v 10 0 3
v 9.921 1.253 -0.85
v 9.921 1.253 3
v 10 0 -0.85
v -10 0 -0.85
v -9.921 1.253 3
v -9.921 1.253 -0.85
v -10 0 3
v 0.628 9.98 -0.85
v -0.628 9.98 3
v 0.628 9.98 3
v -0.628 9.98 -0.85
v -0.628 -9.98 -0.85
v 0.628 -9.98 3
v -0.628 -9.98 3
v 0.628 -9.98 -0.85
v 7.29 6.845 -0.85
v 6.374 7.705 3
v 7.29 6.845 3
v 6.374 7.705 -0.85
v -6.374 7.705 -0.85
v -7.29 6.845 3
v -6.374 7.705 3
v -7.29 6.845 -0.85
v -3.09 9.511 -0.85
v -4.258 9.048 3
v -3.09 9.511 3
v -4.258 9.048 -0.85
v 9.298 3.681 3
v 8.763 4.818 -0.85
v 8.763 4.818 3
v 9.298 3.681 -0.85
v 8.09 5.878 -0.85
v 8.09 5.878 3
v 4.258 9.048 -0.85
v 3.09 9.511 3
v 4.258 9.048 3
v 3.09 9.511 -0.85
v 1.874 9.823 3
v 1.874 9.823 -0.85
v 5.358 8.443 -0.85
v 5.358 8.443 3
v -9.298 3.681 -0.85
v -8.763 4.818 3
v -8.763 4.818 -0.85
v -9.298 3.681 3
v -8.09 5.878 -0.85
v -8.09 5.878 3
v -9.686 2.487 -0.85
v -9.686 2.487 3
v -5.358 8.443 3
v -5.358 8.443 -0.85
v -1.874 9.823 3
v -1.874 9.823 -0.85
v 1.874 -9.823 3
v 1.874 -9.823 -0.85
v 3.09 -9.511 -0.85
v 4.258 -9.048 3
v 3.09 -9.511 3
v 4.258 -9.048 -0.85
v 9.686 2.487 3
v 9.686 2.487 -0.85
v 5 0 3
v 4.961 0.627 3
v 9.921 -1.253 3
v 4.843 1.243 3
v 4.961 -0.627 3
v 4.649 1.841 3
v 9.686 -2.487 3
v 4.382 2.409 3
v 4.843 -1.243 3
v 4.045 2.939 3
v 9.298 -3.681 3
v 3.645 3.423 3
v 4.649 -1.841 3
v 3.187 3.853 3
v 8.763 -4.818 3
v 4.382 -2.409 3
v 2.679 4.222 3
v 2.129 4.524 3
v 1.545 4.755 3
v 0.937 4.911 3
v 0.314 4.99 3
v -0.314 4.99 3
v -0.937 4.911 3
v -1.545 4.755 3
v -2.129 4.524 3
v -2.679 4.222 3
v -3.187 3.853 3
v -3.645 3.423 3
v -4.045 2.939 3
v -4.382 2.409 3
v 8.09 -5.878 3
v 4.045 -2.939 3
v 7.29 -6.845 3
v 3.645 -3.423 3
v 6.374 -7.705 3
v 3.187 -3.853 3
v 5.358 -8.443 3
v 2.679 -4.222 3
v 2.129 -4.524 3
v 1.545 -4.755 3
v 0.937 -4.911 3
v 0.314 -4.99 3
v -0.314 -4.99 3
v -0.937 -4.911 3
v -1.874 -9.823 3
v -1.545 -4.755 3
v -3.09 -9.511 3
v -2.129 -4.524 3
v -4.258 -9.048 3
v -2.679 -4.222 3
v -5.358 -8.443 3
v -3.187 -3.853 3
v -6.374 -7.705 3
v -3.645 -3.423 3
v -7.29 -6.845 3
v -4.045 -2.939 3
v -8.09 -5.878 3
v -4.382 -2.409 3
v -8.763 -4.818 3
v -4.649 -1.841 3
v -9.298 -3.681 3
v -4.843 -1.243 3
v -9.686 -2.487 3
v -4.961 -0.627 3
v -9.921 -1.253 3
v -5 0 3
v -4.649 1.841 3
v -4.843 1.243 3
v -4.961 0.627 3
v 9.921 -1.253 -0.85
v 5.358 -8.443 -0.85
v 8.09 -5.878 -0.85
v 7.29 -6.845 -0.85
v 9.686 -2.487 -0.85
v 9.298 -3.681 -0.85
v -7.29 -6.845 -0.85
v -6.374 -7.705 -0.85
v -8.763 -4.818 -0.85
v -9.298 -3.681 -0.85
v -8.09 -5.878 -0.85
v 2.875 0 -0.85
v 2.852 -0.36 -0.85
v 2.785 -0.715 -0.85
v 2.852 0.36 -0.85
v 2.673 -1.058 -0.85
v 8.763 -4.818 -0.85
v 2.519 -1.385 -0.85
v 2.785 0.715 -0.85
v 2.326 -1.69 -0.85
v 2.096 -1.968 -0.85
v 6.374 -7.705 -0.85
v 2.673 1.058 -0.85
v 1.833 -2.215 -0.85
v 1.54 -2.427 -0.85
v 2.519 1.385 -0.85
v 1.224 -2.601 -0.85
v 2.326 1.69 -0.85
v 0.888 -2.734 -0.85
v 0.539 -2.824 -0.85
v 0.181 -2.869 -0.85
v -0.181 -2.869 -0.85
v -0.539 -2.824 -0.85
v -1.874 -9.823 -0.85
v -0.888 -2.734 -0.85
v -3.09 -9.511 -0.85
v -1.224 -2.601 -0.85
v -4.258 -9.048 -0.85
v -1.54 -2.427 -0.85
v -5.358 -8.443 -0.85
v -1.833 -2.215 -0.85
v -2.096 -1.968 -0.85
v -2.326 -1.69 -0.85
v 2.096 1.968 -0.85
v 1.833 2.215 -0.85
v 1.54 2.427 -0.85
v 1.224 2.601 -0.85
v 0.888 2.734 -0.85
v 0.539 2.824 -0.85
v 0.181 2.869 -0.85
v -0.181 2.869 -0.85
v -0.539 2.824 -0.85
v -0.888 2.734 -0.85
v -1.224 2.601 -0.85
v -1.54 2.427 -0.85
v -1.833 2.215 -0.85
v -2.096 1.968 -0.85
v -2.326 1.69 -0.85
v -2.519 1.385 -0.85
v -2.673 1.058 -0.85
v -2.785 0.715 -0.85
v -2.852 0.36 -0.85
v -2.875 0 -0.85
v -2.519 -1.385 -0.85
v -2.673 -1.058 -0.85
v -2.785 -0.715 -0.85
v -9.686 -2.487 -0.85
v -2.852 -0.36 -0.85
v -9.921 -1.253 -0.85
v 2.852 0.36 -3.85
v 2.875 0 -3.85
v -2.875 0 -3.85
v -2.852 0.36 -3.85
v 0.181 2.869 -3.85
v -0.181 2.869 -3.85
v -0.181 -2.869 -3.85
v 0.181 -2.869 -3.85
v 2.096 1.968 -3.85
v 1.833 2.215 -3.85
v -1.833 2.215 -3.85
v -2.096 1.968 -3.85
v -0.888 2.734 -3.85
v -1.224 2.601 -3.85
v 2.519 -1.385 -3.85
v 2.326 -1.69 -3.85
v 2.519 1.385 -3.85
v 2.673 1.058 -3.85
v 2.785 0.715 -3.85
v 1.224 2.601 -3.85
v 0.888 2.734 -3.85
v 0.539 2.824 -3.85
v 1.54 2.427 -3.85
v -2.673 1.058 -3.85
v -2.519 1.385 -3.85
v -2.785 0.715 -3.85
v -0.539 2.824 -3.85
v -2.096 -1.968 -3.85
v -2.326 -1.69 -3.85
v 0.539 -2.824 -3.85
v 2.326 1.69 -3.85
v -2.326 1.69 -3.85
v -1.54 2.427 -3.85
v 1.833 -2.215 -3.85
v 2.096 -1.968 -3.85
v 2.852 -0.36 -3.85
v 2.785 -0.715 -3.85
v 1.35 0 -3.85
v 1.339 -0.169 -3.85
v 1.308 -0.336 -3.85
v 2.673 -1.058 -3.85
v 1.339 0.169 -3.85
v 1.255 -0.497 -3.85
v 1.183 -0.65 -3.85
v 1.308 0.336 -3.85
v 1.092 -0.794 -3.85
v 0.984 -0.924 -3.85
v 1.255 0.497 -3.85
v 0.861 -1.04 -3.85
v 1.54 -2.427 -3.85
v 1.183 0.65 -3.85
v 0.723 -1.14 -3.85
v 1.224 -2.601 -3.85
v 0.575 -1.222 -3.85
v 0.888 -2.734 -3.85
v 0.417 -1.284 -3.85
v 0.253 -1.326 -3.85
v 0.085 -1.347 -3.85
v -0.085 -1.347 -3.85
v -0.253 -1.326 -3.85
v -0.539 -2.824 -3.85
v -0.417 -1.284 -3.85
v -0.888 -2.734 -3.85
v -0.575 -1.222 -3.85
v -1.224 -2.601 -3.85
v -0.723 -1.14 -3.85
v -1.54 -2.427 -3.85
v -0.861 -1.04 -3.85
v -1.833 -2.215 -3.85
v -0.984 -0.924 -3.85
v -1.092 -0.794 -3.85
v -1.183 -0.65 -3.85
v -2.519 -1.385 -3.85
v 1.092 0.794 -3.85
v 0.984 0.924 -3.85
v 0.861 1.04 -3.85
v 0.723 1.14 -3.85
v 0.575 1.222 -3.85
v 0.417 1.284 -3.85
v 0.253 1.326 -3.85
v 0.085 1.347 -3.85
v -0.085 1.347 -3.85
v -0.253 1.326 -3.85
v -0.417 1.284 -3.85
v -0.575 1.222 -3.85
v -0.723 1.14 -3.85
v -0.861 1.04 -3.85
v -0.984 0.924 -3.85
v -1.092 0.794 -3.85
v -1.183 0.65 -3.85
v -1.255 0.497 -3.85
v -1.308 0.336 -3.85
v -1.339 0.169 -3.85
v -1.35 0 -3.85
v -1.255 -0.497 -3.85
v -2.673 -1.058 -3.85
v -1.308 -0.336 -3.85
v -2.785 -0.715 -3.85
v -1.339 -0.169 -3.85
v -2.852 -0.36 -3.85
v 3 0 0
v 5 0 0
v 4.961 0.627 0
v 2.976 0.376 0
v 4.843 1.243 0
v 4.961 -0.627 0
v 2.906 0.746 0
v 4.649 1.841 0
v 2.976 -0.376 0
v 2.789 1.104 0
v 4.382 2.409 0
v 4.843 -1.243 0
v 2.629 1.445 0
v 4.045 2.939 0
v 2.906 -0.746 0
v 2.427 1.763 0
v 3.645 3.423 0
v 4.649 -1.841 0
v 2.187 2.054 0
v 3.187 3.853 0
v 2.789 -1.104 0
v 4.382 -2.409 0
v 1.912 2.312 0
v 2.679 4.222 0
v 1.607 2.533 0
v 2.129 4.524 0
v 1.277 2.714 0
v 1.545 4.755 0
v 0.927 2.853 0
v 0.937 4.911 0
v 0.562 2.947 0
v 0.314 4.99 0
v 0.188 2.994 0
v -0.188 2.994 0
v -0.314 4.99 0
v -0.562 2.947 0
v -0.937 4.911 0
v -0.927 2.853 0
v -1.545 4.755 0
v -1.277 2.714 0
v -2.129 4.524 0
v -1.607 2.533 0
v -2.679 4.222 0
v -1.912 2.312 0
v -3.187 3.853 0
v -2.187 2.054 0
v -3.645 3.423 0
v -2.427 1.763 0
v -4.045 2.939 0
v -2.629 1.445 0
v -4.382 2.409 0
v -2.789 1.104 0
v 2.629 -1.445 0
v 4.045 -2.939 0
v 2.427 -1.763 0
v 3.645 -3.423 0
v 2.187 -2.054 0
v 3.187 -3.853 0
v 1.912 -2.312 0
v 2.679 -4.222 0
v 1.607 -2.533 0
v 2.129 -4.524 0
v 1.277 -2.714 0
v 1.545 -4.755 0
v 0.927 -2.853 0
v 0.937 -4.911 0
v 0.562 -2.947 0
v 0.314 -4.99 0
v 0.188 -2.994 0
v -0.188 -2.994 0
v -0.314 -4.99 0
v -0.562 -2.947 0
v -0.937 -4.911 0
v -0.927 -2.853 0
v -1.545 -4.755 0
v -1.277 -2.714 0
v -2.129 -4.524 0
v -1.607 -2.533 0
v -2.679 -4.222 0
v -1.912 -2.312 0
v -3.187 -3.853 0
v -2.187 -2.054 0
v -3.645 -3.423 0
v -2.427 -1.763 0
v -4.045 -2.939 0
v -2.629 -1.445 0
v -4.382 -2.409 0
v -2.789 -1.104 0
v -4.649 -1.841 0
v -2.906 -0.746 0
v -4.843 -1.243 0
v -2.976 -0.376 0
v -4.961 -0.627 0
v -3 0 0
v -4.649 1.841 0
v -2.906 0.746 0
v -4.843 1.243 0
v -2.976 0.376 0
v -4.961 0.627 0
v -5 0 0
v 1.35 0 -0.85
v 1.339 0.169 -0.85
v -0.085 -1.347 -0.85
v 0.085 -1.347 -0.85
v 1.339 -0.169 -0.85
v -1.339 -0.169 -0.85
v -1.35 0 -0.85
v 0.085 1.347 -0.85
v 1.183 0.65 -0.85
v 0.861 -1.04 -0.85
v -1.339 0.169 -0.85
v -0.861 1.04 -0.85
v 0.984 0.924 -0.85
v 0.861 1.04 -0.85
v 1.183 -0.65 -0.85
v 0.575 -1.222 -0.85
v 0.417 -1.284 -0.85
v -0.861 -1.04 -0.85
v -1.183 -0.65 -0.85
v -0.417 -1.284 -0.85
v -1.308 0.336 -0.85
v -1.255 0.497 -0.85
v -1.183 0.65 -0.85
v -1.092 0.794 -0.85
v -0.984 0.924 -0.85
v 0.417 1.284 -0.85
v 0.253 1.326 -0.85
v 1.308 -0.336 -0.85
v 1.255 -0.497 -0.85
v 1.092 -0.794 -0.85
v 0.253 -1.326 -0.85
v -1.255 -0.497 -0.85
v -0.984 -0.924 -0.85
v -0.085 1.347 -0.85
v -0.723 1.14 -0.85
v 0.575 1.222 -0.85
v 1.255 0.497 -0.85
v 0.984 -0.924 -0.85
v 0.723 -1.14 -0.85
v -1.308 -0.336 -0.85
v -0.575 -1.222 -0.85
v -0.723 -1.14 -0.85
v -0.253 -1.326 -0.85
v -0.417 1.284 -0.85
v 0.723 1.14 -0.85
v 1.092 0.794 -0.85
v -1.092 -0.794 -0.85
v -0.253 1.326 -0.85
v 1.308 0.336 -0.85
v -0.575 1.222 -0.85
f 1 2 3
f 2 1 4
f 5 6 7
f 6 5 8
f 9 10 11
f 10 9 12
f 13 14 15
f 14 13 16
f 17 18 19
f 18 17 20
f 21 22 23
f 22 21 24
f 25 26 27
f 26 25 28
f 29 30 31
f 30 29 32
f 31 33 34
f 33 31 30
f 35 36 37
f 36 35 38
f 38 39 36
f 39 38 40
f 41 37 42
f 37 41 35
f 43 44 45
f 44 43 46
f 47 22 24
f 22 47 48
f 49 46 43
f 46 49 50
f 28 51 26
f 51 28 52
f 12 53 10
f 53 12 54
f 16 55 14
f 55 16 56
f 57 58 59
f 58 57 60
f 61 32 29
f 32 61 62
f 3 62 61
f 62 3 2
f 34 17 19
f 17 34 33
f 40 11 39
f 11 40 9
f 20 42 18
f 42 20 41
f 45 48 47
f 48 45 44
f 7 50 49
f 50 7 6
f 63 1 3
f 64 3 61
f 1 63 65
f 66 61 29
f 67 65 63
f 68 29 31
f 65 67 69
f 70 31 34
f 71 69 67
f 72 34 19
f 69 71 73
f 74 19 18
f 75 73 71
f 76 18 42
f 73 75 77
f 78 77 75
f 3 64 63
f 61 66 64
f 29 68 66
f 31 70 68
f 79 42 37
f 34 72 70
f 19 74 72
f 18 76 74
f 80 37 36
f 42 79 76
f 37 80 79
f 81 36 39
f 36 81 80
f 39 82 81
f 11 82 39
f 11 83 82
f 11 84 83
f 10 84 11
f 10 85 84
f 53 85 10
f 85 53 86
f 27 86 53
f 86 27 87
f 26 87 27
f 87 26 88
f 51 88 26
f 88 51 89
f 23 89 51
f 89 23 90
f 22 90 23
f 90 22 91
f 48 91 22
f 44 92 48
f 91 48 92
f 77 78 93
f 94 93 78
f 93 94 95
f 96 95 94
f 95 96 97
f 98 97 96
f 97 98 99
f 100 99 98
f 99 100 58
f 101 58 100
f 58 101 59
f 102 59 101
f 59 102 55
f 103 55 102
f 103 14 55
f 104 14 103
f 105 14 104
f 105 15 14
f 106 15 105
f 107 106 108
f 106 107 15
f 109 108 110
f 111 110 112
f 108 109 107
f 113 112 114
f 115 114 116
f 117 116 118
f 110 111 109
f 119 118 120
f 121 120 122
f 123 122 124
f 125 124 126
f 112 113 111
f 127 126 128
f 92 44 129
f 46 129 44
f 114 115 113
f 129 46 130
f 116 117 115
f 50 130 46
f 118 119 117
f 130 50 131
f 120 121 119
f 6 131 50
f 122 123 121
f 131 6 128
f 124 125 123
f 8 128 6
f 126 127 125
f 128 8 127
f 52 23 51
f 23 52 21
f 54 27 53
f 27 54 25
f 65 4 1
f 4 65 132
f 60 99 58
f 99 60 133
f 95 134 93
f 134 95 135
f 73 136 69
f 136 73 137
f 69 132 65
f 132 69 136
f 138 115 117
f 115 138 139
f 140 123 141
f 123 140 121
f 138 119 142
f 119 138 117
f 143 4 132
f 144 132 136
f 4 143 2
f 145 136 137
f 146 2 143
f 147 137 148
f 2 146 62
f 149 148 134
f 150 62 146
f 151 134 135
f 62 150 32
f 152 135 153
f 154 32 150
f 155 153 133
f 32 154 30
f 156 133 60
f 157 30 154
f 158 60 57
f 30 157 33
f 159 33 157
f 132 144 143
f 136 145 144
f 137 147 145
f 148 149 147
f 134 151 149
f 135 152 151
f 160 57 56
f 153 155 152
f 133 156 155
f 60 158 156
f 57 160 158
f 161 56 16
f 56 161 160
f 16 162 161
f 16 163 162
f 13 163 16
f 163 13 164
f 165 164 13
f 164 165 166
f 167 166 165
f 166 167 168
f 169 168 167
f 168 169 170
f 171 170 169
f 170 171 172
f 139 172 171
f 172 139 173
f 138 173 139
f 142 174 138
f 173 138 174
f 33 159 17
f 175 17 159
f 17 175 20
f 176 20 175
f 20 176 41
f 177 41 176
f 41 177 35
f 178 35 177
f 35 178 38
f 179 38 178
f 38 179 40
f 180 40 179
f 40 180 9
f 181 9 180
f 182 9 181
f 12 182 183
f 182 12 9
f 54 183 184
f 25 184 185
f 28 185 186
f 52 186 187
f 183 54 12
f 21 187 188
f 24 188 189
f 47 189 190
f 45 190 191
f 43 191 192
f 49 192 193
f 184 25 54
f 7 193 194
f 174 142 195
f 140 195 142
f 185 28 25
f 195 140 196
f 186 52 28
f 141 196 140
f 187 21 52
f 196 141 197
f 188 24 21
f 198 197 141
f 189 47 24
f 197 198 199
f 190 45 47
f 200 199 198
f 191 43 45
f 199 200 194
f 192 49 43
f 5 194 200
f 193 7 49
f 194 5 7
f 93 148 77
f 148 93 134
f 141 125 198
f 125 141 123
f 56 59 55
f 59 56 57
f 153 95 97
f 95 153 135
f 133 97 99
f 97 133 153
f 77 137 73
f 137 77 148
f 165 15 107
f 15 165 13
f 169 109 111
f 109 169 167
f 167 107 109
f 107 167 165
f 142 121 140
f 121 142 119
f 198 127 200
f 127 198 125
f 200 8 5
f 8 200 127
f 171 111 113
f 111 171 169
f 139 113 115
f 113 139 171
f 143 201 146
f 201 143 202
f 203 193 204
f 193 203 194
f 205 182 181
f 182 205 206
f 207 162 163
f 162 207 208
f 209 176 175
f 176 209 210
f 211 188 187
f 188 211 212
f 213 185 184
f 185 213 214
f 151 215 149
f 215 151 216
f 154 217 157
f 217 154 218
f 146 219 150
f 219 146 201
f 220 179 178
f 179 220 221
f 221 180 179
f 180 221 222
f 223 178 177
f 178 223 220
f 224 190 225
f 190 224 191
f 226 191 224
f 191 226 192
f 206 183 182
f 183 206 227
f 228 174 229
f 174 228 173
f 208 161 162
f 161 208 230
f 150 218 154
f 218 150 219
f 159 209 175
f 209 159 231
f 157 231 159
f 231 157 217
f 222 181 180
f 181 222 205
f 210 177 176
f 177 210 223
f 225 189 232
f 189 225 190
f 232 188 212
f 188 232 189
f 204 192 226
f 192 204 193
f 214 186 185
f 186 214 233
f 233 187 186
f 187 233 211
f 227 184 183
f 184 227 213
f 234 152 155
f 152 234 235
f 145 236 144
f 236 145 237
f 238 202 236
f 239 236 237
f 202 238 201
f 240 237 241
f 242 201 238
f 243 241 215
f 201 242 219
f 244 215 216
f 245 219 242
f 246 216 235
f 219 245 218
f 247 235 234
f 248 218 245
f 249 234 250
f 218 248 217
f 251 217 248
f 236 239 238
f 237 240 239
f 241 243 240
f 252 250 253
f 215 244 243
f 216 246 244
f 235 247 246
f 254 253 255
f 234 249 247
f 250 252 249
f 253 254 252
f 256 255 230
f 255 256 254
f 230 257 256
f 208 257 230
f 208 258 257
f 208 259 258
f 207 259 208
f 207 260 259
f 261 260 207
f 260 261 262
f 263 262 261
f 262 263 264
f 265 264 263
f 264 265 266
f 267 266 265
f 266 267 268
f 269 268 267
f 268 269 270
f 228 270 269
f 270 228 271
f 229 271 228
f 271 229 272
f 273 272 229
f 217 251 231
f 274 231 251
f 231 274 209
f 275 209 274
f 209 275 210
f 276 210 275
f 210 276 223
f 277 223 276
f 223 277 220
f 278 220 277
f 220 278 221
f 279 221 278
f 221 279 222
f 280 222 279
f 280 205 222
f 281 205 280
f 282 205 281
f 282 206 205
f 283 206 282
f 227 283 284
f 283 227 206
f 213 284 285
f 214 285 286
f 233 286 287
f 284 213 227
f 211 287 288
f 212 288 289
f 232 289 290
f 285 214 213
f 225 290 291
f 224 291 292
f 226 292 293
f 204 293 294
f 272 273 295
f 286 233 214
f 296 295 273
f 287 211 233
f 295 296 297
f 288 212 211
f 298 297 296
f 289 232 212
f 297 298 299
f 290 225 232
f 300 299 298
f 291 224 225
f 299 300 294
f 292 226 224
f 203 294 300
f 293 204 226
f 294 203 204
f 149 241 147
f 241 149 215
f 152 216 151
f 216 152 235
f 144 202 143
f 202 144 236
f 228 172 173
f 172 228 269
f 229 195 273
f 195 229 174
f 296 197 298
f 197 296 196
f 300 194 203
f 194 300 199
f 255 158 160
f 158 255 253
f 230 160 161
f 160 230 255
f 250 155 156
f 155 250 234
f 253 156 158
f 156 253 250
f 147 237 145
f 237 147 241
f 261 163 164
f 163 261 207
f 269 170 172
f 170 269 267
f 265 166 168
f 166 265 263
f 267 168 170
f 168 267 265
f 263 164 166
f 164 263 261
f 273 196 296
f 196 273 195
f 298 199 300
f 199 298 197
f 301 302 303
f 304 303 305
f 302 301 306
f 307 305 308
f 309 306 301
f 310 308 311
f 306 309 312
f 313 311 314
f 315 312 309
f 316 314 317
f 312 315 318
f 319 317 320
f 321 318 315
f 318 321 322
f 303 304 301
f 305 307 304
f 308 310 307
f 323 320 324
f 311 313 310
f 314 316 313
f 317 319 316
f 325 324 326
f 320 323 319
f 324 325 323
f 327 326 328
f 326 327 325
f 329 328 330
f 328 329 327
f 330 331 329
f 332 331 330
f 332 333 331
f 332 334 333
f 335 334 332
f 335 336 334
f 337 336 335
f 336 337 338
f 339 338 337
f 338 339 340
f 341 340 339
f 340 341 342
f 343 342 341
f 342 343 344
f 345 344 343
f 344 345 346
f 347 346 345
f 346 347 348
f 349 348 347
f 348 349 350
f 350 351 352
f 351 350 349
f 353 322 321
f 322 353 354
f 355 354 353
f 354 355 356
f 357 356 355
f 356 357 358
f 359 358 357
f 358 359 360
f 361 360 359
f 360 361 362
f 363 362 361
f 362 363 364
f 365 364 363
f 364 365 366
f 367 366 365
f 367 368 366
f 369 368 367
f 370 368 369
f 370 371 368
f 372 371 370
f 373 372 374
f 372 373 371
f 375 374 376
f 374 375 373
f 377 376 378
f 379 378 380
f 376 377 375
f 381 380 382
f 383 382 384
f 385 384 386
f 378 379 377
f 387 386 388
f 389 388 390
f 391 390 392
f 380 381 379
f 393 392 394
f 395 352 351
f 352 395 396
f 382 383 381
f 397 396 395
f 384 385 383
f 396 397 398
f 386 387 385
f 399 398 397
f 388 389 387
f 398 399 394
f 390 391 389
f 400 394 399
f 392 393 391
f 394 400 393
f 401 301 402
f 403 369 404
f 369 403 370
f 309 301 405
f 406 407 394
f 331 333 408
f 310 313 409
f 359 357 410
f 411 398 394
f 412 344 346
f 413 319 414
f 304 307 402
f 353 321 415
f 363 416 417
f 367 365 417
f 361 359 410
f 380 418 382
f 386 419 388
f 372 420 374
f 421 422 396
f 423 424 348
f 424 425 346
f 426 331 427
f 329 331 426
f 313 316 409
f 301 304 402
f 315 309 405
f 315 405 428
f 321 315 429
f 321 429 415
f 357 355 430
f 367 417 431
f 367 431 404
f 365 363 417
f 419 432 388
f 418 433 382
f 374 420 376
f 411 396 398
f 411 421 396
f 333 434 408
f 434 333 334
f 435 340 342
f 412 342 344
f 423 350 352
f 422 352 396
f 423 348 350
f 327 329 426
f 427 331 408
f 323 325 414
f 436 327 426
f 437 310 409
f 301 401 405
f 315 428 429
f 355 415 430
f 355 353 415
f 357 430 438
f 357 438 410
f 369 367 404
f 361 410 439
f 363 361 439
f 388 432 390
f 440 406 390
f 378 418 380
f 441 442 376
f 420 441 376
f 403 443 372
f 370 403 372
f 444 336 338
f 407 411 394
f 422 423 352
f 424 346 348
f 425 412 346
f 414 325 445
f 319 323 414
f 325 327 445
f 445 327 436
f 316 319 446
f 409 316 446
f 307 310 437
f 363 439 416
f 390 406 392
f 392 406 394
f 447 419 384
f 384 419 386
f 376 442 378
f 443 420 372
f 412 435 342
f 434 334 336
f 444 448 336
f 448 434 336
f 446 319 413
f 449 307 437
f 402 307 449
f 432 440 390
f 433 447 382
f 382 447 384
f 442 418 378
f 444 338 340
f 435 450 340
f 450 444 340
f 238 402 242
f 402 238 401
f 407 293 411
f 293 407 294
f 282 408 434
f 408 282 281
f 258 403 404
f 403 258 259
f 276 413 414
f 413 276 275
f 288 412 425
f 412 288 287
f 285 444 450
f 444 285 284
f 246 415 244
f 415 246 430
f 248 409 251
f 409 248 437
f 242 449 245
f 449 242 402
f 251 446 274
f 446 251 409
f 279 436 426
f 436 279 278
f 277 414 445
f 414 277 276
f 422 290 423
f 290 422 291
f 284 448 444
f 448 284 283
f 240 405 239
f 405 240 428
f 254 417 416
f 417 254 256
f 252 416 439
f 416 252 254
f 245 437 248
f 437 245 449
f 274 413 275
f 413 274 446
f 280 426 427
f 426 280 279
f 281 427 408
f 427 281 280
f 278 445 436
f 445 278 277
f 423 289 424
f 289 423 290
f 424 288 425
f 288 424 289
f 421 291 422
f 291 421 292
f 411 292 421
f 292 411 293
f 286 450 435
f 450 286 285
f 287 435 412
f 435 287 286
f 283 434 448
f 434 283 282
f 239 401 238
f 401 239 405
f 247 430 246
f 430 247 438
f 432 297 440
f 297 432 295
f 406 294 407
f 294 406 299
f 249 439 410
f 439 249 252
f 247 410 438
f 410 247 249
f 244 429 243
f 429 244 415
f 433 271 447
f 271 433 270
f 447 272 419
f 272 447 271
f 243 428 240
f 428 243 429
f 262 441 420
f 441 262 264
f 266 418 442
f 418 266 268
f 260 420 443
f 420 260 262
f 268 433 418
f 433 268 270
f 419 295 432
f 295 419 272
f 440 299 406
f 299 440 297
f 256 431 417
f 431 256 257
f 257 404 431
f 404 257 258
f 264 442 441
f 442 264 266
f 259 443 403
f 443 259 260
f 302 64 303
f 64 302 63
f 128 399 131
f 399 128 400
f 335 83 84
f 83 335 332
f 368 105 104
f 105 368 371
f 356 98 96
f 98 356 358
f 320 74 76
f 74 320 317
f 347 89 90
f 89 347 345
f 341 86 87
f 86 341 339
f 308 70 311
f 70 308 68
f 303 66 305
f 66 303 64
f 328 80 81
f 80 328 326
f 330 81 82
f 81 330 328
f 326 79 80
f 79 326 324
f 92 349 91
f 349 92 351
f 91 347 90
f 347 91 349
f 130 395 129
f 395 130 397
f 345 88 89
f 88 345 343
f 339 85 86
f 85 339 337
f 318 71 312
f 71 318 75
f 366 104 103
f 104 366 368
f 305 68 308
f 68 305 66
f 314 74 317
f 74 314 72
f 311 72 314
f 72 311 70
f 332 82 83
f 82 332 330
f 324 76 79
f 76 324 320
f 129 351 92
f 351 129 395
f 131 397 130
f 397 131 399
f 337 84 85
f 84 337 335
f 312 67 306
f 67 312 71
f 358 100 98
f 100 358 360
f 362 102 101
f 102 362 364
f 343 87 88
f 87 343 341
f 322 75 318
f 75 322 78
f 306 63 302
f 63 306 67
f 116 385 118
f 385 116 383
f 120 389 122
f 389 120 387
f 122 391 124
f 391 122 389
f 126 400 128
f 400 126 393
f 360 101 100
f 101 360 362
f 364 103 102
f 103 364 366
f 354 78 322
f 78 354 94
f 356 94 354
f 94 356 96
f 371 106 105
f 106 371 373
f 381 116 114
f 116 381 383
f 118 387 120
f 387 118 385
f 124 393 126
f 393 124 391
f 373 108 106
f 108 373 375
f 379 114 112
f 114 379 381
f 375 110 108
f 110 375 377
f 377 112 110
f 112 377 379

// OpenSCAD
$fn = 50;

difference() {
	union() {
		translate(v = [0, 0, -0.8500000000000001]) {
			cylinder(h = 3.85, r = 10.0);
		}
		#translate(v = [0, 0, -3.85]) {
			cylinder(h = 3.85, r = 2.875);
		}
	}
	union() {
		translate(v = [0, 0, 0]) {
			rotate(a = [0, 0, 0]) {
				difference() {
					union() {
						translate(v = [0, 0, -3.85]) {
							cylinder(h = 3.85, r = 1.0);
						}
						translate(v = [0, 0, -0.85]) {
							cylinder(h = 0.85, r1 = 1.35, r2 = 3.0);
						}
						translate(v = [0, 0, -3.85]) {
							cylinder(h = 3.85, r = 1.35);
						}
						translate(v = [0, 0, -3.85]) {
							cylinder(h = 3.85, r = 1.0);
						}
					}
					union();
				}
			}
		}
		#cylinder(h = 3, r = 5.0);
	}
}
